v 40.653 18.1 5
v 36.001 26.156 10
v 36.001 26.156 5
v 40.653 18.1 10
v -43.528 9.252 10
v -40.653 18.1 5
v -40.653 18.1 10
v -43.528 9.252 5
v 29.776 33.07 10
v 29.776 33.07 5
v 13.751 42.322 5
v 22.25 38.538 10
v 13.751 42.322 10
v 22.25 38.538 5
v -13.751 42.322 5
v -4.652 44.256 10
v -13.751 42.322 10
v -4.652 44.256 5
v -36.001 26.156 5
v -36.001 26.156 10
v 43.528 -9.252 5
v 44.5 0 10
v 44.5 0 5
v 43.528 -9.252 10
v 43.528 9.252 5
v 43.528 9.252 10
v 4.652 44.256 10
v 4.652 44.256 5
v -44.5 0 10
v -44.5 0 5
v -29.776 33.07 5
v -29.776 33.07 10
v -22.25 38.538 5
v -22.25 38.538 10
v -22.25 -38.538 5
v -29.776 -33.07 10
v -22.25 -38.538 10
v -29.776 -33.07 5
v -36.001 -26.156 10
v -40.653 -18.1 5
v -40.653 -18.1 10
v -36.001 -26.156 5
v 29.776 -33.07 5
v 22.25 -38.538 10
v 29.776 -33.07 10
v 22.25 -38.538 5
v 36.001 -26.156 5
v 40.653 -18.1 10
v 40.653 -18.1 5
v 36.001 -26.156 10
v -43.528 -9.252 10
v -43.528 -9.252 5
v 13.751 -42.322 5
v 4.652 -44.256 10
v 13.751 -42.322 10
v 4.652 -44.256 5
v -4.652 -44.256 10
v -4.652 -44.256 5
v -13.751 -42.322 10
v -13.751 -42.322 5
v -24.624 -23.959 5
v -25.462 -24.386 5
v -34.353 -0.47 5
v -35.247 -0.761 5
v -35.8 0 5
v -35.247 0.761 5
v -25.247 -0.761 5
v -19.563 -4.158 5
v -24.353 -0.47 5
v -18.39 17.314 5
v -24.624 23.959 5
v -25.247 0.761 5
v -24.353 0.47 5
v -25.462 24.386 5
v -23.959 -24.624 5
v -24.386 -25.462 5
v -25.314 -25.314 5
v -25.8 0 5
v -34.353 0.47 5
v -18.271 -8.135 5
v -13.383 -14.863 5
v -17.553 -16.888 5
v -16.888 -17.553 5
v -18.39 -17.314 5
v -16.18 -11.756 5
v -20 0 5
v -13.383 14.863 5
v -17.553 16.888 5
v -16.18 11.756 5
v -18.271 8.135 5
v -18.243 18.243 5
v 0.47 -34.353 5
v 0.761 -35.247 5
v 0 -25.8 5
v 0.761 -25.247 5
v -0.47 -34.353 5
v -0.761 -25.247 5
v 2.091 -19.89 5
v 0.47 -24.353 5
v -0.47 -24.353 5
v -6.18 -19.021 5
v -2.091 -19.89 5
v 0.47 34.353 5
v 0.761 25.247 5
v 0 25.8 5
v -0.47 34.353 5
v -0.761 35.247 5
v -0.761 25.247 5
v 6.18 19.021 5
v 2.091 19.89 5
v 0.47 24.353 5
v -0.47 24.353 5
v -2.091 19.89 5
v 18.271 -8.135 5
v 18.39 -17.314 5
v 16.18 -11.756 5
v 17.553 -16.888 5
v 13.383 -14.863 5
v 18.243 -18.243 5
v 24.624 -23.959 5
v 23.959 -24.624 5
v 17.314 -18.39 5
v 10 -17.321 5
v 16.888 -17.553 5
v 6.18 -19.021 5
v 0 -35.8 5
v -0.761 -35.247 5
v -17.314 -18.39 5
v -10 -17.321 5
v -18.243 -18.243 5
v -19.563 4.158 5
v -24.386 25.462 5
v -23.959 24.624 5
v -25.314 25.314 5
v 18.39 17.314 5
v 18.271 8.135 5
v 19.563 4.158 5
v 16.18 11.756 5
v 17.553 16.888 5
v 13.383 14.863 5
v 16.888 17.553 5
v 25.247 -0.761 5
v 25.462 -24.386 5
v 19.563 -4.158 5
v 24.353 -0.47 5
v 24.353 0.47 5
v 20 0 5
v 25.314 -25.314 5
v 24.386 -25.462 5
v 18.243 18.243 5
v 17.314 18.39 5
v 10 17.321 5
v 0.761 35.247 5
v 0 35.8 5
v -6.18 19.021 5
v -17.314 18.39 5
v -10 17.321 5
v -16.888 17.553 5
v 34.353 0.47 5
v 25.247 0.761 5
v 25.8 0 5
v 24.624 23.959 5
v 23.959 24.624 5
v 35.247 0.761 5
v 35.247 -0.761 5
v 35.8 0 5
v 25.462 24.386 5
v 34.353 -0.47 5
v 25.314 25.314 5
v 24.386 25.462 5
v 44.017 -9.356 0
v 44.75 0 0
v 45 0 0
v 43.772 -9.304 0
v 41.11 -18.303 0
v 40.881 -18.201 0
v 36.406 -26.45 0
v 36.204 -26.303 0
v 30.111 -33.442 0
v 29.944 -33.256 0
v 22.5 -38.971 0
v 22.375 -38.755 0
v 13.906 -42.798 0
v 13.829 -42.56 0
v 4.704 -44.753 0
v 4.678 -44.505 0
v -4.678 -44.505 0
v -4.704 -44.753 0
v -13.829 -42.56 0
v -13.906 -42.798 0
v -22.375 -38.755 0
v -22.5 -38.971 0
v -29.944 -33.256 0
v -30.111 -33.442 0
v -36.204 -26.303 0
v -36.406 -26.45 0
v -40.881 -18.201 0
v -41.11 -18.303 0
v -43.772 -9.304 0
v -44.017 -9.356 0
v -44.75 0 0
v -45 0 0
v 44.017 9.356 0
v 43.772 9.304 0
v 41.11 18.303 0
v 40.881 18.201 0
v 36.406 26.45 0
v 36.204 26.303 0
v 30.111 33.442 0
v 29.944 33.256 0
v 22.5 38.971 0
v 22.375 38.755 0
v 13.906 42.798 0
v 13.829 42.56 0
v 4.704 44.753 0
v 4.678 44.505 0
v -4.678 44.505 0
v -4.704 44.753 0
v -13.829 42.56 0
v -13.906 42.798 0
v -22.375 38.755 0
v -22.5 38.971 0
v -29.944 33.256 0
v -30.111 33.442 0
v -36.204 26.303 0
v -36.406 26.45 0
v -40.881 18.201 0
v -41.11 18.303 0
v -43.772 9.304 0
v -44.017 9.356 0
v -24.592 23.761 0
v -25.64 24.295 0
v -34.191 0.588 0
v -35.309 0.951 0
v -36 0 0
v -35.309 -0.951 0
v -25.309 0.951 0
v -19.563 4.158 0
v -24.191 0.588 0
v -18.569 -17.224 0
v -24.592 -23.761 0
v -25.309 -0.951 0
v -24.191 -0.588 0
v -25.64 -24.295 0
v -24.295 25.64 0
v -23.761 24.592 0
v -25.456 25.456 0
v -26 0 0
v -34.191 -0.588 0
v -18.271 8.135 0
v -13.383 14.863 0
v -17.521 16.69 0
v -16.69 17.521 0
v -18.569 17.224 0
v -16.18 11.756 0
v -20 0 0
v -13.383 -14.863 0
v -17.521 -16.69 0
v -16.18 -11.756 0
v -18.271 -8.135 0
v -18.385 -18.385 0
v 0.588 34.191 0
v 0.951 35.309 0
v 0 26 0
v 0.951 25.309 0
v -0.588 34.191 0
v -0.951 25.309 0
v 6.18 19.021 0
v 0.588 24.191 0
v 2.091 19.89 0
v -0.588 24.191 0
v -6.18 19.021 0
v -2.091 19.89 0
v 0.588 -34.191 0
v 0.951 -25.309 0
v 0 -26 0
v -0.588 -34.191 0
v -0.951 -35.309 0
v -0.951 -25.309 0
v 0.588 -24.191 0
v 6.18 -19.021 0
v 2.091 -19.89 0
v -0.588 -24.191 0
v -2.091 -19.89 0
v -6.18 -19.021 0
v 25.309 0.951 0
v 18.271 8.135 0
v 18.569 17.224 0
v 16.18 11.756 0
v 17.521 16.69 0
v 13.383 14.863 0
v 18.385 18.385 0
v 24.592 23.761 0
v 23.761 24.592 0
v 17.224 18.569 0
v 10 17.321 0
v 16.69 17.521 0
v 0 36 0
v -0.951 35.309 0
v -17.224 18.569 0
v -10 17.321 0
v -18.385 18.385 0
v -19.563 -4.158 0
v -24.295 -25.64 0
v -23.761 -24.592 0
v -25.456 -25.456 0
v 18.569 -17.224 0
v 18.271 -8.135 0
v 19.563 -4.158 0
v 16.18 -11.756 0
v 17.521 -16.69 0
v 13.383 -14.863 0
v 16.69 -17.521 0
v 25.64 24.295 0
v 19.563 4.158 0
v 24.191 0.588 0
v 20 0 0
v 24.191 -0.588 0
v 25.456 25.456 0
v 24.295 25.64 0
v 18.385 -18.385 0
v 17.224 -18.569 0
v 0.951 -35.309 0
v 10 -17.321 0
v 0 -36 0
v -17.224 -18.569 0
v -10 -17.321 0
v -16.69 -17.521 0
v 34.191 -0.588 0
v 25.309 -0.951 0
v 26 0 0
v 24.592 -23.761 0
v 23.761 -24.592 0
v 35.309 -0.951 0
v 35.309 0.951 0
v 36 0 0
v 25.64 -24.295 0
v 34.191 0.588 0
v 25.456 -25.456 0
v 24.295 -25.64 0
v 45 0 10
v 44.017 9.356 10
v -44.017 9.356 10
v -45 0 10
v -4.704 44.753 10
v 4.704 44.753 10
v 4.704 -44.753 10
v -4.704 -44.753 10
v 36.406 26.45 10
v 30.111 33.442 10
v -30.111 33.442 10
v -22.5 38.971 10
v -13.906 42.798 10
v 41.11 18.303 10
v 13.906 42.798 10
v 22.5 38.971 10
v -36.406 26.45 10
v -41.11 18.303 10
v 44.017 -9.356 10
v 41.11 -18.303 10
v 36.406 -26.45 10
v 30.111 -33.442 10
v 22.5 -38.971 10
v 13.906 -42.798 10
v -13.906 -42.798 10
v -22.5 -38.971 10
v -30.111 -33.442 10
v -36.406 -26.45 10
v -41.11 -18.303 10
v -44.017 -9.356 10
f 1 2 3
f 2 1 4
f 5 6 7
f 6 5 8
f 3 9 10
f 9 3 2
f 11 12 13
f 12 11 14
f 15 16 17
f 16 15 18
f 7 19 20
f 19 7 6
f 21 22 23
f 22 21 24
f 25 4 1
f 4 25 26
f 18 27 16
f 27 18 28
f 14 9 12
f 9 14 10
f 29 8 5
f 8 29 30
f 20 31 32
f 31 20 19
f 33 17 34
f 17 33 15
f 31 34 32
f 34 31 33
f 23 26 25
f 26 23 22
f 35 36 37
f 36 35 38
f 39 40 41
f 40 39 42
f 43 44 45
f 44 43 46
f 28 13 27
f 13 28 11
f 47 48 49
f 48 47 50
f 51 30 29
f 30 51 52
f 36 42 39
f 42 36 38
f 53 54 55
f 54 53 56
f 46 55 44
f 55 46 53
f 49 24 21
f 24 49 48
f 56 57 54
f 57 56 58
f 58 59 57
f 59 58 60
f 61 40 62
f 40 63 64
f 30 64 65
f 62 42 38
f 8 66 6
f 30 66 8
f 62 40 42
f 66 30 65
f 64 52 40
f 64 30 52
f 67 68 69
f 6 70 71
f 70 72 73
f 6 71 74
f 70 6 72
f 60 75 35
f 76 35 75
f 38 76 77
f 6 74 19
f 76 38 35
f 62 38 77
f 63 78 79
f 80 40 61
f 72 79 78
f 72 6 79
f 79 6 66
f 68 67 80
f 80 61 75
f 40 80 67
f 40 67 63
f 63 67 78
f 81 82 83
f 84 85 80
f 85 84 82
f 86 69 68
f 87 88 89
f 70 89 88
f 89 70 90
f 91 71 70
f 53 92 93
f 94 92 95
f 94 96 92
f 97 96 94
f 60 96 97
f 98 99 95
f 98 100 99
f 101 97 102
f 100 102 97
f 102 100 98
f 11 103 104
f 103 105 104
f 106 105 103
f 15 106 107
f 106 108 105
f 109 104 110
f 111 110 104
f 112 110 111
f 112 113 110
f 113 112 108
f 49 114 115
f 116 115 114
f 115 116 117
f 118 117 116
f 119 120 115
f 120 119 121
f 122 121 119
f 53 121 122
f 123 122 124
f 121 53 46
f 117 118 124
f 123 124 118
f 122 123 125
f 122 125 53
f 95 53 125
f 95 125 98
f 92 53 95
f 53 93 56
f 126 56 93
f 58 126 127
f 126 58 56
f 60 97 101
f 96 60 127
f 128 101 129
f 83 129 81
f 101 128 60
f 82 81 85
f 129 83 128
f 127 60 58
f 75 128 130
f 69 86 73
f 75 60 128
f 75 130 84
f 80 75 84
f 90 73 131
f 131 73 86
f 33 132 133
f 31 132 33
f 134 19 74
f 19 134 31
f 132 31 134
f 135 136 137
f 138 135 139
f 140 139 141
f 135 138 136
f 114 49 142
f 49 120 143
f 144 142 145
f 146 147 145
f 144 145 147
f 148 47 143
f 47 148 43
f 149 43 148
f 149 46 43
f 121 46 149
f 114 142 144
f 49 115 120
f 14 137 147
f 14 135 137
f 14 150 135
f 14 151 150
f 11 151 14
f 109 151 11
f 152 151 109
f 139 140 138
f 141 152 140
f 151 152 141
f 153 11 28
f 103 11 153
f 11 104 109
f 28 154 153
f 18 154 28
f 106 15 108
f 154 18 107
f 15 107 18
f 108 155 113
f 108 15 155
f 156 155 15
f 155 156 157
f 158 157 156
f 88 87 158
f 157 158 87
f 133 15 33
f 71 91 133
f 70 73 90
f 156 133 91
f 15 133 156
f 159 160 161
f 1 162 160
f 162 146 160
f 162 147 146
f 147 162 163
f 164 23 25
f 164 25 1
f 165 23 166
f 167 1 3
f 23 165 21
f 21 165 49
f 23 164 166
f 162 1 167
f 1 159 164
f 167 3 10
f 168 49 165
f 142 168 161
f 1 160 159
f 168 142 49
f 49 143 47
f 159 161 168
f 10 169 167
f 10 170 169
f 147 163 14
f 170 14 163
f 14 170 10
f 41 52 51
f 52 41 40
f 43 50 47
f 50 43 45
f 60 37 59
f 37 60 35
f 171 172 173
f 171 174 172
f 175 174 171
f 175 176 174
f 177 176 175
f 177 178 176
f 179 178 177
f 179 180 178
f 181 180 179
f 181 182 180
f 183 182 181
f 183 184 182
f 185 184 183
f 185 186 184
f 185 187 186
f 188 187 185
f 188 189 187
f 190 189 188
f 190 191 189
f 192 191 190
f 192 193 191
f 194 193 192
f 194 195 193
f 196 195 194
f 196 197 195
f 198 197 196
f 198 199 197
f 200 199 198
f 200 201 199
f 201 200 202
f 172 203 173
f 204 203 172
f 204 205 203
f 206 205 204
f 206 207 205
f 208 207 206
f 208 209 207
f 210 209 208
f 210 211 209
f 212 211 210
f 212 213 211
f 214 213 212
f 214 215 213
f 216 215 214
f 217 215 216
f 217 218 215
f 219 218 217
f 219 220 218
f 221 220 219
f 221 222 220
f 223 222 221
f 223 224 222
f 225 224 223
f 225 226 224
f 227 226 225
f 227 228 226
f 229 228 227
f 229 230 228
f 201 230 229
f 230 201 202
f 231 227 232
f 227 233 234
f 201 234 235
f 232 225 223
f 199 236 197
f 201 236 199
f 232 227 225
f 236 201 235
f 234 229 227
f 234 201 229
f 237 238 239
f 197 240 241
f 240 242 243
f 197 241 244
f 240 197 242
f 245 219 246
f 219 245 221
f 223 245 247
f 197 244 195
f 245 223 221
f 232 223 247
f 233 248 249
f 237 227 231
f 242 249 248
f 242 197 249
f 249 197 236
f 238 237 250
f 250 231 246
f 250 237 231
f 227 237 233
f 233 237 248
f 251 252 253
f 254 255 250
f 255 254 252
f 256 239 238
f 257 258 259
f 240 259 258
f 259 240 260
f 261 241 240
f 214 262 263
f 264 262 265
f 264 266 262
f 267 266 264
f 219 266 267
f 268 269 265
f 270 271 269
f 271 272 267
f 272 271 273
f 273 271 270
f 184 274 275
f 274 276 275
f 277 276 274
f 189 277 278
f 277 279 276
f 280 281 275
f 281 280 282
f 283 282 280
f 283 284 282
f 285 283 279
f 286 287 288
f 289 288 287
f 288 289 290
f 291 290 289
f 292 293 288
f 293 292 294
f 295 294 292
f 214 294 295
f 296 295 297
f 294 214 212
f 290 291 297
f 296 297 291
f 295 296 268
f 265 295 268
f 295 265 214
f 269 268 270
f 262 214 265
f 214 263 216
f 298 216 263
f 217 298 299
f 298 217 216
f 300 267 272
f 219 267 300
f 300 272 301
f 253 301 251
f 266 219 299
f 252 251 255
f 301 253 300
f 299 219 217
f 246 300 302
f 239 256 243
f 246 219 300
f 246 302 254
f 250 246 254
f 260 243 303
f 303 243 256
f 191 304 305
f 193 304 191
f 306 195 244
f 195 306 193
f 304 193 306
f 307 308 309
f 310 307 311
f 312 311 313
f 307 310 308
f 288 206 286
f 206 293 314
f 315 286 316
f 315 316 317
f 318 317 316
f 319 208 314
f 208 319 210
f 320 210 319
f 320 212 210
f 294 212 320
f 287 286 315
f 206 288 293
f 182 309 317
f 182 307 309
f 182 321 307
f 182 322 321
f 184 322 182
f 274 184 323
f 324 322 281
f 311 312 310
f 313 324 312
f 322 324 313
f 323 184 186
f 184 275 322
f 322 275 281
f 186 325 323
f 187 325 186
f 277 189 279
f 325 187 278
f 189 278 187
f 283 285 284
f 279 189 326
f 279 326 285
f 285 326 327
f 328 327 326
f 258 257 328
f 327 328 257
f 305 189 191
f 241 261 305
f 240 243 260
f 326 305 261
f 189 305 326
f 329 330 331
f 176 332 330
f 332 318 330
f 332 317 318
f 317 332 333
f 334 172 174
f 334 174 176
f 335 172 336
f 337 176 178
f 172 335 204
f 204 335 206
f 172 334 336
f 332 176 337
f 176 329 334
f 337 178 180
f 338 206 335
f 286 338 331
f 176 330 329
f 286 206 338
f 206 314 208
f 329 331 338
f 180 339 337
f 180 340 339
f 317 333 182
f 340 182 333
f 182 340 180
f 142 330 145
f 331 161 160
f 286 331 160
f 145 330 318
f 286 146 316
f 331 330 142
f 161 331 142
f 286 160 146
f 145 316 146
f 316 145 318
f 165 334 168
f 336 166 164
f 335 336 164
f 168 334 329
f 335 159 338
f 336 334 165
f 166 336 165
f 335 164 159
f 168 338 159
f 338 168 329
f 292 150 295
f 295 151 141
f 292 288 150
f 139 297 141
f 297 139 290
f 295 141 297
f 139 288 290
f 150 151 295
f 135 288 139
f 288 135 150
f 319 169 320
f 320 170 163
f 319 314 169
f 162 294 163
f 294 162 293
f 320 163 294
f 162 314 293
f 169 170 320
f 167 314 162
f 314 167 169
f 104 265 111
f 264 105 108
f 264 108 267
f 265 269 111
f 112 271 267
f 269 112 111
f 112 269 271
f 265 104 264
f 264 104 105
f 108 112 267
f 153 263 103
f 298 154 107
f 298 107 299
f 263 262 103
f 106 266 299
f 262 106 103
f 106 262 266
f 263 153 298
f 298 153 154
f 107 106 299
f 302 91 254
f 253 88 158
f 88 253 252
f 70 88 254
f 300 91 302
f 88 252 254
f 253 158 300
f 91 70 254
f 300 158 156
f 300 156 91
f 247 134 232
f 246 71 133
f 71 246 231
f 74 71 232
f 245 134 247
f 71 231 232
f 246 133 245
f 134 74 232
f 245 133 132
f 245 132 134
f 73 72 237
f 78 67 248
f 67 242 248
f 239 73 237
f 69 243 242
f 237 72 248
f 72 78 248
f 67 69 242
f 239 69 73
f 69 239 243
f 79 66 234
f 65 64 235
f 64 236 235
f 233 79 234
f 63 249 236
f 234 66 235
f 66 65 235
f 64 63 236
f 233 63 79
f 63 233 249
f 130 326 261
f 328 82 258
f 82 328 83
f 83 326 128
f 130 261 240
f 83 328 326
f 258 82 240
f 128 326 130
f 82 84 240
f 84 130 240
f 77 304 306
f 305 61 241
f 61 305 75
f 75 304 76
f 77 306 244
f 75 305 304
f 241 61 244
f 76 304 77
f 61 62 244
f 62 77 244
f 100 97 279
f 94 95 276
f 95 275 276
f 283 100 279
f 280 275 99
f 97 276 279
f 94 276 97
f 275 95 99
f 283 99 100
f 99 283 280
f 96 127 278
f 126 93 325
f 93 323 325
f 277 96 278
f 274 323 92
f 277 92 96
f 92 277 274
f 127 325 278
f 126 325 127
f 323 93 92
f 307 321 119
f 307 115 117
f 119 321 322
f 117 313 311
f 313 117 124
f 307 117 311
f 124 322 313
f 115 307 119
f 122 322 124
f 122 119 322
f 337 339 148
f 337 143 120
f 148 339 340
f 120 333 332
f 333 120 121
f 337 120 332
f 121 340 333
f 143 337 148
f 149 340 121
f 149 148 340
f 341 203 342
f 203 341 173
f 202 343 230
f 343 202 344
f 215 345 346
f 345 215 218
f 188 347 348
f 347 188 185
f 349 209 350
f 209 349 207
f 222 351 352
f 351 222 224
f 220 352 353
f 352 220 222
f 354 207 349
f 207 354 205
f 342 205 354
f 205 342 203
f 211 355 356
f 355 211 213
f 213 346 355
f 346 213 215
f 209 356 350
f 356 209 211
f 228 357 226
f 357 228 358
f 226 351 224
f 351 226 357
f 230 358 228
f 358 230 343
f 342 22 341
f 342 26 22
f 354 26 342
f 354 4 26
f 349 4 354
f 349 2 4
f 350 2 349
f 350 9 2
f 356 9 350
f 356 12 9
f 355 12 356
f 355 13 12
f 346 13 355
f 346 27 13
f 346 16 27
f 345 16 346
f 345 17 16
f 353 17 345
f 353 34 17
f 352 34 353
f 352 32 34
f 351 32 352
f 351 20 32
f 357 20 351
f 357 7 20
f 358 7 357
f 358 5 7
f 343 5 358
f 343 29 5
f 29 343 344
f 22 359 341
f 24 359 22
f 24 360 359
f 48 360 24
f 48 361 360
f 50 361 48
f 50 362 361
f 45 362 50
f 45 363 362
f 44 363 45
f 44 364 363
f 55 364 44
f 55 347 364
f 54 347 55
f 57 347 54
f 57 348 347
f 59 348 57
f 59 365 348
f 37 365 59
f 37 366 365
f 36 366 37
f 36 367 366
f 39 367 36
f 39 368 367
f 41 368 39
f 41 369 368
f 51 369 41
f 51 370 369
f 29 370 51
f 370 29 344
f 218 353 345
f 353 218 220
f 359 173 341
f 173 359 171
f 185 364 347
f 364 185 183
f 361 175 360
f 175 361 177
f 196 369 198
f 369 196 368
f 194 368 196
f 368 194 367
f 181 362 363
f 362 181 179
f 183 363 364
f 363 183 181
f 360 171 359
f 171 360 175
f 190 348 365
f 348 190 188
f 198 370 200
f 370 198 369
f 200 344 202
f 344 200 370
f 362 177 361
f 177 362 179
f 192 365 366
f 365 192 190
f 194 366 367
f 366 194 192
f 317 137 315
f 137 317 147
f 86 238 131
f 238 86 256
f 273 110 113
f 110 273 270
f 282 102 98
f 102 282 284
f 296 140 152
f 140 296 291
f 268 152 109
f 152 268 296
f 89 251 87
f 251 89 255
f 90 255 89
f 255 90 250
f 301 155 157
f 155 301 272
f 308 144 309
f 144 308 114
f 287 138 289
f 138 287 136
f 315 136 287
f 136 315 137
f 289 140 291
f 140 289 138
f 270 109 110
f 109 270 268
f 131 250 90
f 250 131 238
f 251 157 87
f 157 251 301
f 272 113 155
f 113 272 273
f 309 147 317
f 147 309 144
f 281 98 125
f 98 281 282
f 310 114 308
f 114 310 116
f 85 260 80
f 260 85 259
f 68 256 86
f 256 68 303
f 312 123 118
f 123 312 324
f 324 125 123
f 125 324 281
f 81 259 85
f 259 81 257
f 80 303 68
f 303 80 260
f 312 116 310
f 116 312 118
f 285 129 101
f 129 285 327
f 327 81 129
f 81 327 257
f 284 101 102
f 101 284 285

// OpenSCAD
// Petri dish lid with holes for needle electrodes
// Electrodes are arranged in pairs, in a radial pattern

// Parameters
diameter = 90;          // Total outer diameter of the lid
top_height = 5;         // Thickness of the top cover

rim_height = 5;         // Height of the rim extending below the lid
rim_thickness = 0.5;    // Thickness of the rim/sidewalls
rim_offset = 1;         // Extra clearance for snug fit over the dish

num_pairs = 8;          // Number of hole pairs (8 pairs = 16 holes)
pair_separation = 10;   // Separation distance between holes in a pair
placement_radius = 30;  // Distance from the center for hole placement
hole_radius_min = 0.8;  // Inner radius of the tapered electrode hole
hole_radius_max = 1.0;  // Outer radius of the tapered electrode hole
center_hole_radius = 20; 

// Create the lid with a rim
module lid() {
    total_height = top_height + rim_height;
    difference() {
        // Main body of the lid
        cylinder(d=diameter, h=total_height, center=false);

        // Hollow out the lid (separate top and sidewall thickness)
        translate([0, 0, top_height])
            difference() {
                // Hollow out the full height of the lid
                cylinder(d=diameter - 2 * rim_thickness, h=total_height, center=false);

                // Remove extra material at the top for thinner sidewalls
                translate([0, 0, -top_height])
                    cylinder(d=diameter - 2 * rim_thickness, h=top_height, center=false);
            }

        // Add a rim for secure fit
        translate([0, 0, -rim_height])
            difference() {
                cylinder(d=diameter + rim_offset, h=rim_height, center=false);
                translate([0, 0, rim_thickness])
                    cylinder(d=diameter - rim_thickness, h=rim_height, center=false);
            }

        // Create holes for electrodes
        electrode_holes();

        // Create a hole in the center
        translate([0, 0, 0])
            cylinder(r=center_hole_radius, h=top_height, center=false);
    }
}

// Create holes for electrodes, placed in the top only
module electrode_holes() {
    for (i = [0:num_pairs-1]) {
        angle = i * 360 / num_pairs;

        for (offset = [-pair_separation / 2, pair_separation / 2]) {
            // Calculate hole positions
            x = (placement_radius + offset) * cos(angle);
            y = (placement_radius + offset) * sin(angle);

            // Create tapered cone
            translate([x, y, 0])
                rotate([0, 0, angle])
                    cylinder(r1=hole_radius_max, r2=hole_radius_min, h=top_height, center=false);
        }
    }
}

// Export the lid with rim
lid();
